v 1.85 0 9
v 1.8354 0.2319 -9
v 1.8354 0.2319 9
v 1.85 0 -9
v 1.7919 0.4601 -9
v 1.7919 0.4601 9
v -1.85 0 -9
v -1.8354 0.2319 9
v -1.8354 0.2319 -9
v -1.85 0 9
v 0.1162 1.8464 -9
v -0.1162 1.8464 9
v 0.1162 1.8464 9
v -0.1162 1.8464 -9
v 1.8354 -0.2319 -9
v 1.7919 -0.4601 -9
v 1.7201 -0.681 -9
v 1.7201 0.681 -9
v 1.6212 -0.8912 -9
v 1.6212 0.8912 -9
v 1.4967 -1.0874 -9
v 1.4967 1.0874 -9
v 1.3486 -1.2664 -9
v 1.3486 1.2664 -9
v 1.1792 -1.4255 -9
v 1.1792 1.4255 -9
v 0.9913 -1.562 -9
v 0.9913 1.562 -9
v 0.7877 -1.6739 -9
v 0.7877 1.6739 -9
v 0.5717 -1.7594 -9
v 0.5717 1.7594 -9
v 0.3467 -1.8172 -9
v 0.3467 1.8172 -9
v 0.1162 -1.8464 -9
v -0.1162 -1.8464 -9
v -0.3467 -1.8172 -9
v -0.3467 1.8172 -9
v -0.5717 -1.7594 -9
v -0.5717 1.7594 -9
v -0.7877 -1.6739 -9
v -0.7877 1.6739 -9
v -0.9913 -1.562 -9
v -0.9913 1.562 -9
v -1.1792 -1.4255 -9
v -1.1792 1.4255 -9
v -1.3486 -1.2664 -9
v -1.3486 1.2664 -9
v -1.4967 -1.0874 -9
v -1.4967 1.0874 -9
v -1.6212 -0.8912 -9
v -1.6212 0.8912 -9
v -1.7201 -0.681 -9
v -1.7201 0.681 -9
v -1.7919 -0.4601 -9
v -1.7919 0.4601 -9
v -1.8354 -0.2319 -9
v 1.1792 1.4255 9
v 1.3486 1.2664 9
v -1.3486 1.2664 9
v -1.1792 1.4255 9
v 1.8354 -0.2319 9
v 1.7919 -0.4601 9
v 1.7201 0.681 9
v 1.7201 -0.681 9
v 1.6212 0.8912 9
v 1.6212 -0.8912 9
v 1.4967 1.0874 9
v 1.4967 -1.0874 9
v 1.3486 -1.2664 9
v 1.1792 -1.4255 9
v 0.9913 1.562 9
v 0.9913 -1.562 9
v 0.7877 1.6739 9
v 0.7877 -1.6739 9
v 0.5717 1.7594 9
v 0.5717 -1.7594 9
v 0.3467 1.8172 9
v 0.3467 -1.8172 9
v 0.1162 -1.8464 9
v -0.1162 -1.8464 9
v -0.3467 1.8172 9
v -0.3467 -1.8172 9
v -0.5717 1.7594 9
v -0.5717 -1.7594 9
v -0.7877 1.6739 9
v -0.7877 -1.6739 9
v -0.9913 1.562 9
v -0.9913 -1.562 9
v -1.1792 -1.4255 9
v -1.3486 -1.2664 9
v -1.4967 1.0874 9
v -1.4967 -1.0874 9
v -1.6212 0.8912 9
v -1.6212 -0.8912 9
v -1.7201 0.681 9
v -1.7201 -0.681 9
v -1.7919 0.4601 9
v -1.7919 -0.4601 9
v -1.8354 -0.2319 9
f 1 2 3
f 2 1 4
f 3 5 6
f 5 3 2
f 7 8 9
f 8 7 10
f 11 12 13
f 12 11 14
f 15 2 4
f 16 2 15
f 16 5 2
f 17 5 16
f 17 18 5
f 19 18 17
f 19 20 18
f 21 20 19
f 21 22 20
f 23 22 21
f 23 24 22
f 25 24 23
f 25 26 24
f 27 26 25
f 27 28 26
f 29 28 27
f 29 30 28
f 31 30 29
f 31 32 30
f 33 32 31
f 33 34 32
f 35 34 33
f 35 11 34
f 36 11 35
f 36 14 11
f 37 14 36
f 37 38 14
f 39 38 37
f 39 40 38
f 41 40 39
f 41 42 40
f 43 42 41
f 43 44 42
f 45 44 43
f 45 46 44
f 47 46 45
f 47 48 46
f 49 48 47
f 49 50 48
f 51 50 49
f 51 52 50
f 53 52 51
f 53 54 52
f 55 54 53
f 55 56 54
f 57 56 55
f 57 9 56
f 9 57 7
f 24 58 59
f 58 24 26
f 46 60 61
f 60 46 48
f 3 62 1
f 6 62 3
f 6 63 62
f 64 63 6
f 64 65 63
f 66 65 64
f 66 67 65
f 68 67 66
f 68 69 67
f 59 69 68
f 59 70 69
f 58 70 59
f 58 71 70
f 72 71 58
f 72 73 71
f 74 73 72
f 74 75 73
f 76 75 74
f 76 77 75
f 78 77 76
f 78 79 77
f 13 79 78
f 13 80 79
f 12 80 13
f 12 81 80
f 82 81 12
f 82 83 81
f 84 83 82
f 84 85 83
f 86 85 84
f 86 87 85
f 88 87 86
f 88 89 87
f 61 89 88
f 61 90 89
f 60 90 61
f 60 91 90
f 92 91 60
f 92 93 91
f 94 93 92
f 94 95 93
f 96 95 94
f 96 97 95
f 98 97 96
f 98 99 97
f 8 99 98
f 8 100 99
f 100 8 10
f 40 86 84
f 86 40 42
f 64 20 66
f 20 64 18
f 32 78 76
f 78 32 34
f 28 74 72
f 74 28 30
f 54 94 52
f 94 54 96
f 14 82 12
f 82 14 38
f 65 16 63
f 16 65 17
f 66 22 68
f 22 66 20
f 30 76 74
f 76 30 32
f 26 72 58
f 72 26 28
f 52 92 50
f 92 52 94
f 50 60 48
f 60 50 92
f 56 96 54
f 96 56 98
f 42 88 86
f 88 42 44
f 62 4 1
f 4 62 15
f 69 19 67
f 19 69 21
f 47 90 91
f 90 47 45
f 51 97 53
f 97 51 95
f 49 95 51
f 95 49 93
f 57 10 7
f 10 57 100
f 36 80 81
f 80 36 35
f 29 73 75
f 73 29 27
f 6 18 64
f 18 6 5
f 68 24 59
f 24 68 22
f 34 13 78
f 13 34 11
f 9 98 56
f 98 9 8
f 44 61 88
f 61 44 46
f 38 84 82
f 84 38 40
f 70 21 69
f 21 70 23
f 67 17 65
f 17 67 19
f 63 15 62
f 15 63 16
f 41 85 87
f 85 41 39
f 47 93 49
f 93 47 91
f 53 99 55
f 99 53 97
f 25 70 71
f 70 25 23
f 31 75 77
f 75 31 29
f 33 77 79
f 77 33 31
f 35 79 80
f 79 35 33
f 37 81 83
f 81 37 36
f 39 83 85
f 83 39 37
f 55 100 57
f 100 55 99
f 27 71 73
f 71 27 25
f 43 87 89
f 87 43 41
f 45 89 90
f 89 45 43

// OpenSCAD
$fn = 50;


difference() {
	union() {
		translate(v = [0, 0, -9.0000000000]) {
			cylinder(h = 18, r = 1.8500000000);
		}
	}
	union() {
		translate(v = [0, 0, -100.0000000000]) {
			cylinder(h = 200, r = 0);
		}
	}
}
